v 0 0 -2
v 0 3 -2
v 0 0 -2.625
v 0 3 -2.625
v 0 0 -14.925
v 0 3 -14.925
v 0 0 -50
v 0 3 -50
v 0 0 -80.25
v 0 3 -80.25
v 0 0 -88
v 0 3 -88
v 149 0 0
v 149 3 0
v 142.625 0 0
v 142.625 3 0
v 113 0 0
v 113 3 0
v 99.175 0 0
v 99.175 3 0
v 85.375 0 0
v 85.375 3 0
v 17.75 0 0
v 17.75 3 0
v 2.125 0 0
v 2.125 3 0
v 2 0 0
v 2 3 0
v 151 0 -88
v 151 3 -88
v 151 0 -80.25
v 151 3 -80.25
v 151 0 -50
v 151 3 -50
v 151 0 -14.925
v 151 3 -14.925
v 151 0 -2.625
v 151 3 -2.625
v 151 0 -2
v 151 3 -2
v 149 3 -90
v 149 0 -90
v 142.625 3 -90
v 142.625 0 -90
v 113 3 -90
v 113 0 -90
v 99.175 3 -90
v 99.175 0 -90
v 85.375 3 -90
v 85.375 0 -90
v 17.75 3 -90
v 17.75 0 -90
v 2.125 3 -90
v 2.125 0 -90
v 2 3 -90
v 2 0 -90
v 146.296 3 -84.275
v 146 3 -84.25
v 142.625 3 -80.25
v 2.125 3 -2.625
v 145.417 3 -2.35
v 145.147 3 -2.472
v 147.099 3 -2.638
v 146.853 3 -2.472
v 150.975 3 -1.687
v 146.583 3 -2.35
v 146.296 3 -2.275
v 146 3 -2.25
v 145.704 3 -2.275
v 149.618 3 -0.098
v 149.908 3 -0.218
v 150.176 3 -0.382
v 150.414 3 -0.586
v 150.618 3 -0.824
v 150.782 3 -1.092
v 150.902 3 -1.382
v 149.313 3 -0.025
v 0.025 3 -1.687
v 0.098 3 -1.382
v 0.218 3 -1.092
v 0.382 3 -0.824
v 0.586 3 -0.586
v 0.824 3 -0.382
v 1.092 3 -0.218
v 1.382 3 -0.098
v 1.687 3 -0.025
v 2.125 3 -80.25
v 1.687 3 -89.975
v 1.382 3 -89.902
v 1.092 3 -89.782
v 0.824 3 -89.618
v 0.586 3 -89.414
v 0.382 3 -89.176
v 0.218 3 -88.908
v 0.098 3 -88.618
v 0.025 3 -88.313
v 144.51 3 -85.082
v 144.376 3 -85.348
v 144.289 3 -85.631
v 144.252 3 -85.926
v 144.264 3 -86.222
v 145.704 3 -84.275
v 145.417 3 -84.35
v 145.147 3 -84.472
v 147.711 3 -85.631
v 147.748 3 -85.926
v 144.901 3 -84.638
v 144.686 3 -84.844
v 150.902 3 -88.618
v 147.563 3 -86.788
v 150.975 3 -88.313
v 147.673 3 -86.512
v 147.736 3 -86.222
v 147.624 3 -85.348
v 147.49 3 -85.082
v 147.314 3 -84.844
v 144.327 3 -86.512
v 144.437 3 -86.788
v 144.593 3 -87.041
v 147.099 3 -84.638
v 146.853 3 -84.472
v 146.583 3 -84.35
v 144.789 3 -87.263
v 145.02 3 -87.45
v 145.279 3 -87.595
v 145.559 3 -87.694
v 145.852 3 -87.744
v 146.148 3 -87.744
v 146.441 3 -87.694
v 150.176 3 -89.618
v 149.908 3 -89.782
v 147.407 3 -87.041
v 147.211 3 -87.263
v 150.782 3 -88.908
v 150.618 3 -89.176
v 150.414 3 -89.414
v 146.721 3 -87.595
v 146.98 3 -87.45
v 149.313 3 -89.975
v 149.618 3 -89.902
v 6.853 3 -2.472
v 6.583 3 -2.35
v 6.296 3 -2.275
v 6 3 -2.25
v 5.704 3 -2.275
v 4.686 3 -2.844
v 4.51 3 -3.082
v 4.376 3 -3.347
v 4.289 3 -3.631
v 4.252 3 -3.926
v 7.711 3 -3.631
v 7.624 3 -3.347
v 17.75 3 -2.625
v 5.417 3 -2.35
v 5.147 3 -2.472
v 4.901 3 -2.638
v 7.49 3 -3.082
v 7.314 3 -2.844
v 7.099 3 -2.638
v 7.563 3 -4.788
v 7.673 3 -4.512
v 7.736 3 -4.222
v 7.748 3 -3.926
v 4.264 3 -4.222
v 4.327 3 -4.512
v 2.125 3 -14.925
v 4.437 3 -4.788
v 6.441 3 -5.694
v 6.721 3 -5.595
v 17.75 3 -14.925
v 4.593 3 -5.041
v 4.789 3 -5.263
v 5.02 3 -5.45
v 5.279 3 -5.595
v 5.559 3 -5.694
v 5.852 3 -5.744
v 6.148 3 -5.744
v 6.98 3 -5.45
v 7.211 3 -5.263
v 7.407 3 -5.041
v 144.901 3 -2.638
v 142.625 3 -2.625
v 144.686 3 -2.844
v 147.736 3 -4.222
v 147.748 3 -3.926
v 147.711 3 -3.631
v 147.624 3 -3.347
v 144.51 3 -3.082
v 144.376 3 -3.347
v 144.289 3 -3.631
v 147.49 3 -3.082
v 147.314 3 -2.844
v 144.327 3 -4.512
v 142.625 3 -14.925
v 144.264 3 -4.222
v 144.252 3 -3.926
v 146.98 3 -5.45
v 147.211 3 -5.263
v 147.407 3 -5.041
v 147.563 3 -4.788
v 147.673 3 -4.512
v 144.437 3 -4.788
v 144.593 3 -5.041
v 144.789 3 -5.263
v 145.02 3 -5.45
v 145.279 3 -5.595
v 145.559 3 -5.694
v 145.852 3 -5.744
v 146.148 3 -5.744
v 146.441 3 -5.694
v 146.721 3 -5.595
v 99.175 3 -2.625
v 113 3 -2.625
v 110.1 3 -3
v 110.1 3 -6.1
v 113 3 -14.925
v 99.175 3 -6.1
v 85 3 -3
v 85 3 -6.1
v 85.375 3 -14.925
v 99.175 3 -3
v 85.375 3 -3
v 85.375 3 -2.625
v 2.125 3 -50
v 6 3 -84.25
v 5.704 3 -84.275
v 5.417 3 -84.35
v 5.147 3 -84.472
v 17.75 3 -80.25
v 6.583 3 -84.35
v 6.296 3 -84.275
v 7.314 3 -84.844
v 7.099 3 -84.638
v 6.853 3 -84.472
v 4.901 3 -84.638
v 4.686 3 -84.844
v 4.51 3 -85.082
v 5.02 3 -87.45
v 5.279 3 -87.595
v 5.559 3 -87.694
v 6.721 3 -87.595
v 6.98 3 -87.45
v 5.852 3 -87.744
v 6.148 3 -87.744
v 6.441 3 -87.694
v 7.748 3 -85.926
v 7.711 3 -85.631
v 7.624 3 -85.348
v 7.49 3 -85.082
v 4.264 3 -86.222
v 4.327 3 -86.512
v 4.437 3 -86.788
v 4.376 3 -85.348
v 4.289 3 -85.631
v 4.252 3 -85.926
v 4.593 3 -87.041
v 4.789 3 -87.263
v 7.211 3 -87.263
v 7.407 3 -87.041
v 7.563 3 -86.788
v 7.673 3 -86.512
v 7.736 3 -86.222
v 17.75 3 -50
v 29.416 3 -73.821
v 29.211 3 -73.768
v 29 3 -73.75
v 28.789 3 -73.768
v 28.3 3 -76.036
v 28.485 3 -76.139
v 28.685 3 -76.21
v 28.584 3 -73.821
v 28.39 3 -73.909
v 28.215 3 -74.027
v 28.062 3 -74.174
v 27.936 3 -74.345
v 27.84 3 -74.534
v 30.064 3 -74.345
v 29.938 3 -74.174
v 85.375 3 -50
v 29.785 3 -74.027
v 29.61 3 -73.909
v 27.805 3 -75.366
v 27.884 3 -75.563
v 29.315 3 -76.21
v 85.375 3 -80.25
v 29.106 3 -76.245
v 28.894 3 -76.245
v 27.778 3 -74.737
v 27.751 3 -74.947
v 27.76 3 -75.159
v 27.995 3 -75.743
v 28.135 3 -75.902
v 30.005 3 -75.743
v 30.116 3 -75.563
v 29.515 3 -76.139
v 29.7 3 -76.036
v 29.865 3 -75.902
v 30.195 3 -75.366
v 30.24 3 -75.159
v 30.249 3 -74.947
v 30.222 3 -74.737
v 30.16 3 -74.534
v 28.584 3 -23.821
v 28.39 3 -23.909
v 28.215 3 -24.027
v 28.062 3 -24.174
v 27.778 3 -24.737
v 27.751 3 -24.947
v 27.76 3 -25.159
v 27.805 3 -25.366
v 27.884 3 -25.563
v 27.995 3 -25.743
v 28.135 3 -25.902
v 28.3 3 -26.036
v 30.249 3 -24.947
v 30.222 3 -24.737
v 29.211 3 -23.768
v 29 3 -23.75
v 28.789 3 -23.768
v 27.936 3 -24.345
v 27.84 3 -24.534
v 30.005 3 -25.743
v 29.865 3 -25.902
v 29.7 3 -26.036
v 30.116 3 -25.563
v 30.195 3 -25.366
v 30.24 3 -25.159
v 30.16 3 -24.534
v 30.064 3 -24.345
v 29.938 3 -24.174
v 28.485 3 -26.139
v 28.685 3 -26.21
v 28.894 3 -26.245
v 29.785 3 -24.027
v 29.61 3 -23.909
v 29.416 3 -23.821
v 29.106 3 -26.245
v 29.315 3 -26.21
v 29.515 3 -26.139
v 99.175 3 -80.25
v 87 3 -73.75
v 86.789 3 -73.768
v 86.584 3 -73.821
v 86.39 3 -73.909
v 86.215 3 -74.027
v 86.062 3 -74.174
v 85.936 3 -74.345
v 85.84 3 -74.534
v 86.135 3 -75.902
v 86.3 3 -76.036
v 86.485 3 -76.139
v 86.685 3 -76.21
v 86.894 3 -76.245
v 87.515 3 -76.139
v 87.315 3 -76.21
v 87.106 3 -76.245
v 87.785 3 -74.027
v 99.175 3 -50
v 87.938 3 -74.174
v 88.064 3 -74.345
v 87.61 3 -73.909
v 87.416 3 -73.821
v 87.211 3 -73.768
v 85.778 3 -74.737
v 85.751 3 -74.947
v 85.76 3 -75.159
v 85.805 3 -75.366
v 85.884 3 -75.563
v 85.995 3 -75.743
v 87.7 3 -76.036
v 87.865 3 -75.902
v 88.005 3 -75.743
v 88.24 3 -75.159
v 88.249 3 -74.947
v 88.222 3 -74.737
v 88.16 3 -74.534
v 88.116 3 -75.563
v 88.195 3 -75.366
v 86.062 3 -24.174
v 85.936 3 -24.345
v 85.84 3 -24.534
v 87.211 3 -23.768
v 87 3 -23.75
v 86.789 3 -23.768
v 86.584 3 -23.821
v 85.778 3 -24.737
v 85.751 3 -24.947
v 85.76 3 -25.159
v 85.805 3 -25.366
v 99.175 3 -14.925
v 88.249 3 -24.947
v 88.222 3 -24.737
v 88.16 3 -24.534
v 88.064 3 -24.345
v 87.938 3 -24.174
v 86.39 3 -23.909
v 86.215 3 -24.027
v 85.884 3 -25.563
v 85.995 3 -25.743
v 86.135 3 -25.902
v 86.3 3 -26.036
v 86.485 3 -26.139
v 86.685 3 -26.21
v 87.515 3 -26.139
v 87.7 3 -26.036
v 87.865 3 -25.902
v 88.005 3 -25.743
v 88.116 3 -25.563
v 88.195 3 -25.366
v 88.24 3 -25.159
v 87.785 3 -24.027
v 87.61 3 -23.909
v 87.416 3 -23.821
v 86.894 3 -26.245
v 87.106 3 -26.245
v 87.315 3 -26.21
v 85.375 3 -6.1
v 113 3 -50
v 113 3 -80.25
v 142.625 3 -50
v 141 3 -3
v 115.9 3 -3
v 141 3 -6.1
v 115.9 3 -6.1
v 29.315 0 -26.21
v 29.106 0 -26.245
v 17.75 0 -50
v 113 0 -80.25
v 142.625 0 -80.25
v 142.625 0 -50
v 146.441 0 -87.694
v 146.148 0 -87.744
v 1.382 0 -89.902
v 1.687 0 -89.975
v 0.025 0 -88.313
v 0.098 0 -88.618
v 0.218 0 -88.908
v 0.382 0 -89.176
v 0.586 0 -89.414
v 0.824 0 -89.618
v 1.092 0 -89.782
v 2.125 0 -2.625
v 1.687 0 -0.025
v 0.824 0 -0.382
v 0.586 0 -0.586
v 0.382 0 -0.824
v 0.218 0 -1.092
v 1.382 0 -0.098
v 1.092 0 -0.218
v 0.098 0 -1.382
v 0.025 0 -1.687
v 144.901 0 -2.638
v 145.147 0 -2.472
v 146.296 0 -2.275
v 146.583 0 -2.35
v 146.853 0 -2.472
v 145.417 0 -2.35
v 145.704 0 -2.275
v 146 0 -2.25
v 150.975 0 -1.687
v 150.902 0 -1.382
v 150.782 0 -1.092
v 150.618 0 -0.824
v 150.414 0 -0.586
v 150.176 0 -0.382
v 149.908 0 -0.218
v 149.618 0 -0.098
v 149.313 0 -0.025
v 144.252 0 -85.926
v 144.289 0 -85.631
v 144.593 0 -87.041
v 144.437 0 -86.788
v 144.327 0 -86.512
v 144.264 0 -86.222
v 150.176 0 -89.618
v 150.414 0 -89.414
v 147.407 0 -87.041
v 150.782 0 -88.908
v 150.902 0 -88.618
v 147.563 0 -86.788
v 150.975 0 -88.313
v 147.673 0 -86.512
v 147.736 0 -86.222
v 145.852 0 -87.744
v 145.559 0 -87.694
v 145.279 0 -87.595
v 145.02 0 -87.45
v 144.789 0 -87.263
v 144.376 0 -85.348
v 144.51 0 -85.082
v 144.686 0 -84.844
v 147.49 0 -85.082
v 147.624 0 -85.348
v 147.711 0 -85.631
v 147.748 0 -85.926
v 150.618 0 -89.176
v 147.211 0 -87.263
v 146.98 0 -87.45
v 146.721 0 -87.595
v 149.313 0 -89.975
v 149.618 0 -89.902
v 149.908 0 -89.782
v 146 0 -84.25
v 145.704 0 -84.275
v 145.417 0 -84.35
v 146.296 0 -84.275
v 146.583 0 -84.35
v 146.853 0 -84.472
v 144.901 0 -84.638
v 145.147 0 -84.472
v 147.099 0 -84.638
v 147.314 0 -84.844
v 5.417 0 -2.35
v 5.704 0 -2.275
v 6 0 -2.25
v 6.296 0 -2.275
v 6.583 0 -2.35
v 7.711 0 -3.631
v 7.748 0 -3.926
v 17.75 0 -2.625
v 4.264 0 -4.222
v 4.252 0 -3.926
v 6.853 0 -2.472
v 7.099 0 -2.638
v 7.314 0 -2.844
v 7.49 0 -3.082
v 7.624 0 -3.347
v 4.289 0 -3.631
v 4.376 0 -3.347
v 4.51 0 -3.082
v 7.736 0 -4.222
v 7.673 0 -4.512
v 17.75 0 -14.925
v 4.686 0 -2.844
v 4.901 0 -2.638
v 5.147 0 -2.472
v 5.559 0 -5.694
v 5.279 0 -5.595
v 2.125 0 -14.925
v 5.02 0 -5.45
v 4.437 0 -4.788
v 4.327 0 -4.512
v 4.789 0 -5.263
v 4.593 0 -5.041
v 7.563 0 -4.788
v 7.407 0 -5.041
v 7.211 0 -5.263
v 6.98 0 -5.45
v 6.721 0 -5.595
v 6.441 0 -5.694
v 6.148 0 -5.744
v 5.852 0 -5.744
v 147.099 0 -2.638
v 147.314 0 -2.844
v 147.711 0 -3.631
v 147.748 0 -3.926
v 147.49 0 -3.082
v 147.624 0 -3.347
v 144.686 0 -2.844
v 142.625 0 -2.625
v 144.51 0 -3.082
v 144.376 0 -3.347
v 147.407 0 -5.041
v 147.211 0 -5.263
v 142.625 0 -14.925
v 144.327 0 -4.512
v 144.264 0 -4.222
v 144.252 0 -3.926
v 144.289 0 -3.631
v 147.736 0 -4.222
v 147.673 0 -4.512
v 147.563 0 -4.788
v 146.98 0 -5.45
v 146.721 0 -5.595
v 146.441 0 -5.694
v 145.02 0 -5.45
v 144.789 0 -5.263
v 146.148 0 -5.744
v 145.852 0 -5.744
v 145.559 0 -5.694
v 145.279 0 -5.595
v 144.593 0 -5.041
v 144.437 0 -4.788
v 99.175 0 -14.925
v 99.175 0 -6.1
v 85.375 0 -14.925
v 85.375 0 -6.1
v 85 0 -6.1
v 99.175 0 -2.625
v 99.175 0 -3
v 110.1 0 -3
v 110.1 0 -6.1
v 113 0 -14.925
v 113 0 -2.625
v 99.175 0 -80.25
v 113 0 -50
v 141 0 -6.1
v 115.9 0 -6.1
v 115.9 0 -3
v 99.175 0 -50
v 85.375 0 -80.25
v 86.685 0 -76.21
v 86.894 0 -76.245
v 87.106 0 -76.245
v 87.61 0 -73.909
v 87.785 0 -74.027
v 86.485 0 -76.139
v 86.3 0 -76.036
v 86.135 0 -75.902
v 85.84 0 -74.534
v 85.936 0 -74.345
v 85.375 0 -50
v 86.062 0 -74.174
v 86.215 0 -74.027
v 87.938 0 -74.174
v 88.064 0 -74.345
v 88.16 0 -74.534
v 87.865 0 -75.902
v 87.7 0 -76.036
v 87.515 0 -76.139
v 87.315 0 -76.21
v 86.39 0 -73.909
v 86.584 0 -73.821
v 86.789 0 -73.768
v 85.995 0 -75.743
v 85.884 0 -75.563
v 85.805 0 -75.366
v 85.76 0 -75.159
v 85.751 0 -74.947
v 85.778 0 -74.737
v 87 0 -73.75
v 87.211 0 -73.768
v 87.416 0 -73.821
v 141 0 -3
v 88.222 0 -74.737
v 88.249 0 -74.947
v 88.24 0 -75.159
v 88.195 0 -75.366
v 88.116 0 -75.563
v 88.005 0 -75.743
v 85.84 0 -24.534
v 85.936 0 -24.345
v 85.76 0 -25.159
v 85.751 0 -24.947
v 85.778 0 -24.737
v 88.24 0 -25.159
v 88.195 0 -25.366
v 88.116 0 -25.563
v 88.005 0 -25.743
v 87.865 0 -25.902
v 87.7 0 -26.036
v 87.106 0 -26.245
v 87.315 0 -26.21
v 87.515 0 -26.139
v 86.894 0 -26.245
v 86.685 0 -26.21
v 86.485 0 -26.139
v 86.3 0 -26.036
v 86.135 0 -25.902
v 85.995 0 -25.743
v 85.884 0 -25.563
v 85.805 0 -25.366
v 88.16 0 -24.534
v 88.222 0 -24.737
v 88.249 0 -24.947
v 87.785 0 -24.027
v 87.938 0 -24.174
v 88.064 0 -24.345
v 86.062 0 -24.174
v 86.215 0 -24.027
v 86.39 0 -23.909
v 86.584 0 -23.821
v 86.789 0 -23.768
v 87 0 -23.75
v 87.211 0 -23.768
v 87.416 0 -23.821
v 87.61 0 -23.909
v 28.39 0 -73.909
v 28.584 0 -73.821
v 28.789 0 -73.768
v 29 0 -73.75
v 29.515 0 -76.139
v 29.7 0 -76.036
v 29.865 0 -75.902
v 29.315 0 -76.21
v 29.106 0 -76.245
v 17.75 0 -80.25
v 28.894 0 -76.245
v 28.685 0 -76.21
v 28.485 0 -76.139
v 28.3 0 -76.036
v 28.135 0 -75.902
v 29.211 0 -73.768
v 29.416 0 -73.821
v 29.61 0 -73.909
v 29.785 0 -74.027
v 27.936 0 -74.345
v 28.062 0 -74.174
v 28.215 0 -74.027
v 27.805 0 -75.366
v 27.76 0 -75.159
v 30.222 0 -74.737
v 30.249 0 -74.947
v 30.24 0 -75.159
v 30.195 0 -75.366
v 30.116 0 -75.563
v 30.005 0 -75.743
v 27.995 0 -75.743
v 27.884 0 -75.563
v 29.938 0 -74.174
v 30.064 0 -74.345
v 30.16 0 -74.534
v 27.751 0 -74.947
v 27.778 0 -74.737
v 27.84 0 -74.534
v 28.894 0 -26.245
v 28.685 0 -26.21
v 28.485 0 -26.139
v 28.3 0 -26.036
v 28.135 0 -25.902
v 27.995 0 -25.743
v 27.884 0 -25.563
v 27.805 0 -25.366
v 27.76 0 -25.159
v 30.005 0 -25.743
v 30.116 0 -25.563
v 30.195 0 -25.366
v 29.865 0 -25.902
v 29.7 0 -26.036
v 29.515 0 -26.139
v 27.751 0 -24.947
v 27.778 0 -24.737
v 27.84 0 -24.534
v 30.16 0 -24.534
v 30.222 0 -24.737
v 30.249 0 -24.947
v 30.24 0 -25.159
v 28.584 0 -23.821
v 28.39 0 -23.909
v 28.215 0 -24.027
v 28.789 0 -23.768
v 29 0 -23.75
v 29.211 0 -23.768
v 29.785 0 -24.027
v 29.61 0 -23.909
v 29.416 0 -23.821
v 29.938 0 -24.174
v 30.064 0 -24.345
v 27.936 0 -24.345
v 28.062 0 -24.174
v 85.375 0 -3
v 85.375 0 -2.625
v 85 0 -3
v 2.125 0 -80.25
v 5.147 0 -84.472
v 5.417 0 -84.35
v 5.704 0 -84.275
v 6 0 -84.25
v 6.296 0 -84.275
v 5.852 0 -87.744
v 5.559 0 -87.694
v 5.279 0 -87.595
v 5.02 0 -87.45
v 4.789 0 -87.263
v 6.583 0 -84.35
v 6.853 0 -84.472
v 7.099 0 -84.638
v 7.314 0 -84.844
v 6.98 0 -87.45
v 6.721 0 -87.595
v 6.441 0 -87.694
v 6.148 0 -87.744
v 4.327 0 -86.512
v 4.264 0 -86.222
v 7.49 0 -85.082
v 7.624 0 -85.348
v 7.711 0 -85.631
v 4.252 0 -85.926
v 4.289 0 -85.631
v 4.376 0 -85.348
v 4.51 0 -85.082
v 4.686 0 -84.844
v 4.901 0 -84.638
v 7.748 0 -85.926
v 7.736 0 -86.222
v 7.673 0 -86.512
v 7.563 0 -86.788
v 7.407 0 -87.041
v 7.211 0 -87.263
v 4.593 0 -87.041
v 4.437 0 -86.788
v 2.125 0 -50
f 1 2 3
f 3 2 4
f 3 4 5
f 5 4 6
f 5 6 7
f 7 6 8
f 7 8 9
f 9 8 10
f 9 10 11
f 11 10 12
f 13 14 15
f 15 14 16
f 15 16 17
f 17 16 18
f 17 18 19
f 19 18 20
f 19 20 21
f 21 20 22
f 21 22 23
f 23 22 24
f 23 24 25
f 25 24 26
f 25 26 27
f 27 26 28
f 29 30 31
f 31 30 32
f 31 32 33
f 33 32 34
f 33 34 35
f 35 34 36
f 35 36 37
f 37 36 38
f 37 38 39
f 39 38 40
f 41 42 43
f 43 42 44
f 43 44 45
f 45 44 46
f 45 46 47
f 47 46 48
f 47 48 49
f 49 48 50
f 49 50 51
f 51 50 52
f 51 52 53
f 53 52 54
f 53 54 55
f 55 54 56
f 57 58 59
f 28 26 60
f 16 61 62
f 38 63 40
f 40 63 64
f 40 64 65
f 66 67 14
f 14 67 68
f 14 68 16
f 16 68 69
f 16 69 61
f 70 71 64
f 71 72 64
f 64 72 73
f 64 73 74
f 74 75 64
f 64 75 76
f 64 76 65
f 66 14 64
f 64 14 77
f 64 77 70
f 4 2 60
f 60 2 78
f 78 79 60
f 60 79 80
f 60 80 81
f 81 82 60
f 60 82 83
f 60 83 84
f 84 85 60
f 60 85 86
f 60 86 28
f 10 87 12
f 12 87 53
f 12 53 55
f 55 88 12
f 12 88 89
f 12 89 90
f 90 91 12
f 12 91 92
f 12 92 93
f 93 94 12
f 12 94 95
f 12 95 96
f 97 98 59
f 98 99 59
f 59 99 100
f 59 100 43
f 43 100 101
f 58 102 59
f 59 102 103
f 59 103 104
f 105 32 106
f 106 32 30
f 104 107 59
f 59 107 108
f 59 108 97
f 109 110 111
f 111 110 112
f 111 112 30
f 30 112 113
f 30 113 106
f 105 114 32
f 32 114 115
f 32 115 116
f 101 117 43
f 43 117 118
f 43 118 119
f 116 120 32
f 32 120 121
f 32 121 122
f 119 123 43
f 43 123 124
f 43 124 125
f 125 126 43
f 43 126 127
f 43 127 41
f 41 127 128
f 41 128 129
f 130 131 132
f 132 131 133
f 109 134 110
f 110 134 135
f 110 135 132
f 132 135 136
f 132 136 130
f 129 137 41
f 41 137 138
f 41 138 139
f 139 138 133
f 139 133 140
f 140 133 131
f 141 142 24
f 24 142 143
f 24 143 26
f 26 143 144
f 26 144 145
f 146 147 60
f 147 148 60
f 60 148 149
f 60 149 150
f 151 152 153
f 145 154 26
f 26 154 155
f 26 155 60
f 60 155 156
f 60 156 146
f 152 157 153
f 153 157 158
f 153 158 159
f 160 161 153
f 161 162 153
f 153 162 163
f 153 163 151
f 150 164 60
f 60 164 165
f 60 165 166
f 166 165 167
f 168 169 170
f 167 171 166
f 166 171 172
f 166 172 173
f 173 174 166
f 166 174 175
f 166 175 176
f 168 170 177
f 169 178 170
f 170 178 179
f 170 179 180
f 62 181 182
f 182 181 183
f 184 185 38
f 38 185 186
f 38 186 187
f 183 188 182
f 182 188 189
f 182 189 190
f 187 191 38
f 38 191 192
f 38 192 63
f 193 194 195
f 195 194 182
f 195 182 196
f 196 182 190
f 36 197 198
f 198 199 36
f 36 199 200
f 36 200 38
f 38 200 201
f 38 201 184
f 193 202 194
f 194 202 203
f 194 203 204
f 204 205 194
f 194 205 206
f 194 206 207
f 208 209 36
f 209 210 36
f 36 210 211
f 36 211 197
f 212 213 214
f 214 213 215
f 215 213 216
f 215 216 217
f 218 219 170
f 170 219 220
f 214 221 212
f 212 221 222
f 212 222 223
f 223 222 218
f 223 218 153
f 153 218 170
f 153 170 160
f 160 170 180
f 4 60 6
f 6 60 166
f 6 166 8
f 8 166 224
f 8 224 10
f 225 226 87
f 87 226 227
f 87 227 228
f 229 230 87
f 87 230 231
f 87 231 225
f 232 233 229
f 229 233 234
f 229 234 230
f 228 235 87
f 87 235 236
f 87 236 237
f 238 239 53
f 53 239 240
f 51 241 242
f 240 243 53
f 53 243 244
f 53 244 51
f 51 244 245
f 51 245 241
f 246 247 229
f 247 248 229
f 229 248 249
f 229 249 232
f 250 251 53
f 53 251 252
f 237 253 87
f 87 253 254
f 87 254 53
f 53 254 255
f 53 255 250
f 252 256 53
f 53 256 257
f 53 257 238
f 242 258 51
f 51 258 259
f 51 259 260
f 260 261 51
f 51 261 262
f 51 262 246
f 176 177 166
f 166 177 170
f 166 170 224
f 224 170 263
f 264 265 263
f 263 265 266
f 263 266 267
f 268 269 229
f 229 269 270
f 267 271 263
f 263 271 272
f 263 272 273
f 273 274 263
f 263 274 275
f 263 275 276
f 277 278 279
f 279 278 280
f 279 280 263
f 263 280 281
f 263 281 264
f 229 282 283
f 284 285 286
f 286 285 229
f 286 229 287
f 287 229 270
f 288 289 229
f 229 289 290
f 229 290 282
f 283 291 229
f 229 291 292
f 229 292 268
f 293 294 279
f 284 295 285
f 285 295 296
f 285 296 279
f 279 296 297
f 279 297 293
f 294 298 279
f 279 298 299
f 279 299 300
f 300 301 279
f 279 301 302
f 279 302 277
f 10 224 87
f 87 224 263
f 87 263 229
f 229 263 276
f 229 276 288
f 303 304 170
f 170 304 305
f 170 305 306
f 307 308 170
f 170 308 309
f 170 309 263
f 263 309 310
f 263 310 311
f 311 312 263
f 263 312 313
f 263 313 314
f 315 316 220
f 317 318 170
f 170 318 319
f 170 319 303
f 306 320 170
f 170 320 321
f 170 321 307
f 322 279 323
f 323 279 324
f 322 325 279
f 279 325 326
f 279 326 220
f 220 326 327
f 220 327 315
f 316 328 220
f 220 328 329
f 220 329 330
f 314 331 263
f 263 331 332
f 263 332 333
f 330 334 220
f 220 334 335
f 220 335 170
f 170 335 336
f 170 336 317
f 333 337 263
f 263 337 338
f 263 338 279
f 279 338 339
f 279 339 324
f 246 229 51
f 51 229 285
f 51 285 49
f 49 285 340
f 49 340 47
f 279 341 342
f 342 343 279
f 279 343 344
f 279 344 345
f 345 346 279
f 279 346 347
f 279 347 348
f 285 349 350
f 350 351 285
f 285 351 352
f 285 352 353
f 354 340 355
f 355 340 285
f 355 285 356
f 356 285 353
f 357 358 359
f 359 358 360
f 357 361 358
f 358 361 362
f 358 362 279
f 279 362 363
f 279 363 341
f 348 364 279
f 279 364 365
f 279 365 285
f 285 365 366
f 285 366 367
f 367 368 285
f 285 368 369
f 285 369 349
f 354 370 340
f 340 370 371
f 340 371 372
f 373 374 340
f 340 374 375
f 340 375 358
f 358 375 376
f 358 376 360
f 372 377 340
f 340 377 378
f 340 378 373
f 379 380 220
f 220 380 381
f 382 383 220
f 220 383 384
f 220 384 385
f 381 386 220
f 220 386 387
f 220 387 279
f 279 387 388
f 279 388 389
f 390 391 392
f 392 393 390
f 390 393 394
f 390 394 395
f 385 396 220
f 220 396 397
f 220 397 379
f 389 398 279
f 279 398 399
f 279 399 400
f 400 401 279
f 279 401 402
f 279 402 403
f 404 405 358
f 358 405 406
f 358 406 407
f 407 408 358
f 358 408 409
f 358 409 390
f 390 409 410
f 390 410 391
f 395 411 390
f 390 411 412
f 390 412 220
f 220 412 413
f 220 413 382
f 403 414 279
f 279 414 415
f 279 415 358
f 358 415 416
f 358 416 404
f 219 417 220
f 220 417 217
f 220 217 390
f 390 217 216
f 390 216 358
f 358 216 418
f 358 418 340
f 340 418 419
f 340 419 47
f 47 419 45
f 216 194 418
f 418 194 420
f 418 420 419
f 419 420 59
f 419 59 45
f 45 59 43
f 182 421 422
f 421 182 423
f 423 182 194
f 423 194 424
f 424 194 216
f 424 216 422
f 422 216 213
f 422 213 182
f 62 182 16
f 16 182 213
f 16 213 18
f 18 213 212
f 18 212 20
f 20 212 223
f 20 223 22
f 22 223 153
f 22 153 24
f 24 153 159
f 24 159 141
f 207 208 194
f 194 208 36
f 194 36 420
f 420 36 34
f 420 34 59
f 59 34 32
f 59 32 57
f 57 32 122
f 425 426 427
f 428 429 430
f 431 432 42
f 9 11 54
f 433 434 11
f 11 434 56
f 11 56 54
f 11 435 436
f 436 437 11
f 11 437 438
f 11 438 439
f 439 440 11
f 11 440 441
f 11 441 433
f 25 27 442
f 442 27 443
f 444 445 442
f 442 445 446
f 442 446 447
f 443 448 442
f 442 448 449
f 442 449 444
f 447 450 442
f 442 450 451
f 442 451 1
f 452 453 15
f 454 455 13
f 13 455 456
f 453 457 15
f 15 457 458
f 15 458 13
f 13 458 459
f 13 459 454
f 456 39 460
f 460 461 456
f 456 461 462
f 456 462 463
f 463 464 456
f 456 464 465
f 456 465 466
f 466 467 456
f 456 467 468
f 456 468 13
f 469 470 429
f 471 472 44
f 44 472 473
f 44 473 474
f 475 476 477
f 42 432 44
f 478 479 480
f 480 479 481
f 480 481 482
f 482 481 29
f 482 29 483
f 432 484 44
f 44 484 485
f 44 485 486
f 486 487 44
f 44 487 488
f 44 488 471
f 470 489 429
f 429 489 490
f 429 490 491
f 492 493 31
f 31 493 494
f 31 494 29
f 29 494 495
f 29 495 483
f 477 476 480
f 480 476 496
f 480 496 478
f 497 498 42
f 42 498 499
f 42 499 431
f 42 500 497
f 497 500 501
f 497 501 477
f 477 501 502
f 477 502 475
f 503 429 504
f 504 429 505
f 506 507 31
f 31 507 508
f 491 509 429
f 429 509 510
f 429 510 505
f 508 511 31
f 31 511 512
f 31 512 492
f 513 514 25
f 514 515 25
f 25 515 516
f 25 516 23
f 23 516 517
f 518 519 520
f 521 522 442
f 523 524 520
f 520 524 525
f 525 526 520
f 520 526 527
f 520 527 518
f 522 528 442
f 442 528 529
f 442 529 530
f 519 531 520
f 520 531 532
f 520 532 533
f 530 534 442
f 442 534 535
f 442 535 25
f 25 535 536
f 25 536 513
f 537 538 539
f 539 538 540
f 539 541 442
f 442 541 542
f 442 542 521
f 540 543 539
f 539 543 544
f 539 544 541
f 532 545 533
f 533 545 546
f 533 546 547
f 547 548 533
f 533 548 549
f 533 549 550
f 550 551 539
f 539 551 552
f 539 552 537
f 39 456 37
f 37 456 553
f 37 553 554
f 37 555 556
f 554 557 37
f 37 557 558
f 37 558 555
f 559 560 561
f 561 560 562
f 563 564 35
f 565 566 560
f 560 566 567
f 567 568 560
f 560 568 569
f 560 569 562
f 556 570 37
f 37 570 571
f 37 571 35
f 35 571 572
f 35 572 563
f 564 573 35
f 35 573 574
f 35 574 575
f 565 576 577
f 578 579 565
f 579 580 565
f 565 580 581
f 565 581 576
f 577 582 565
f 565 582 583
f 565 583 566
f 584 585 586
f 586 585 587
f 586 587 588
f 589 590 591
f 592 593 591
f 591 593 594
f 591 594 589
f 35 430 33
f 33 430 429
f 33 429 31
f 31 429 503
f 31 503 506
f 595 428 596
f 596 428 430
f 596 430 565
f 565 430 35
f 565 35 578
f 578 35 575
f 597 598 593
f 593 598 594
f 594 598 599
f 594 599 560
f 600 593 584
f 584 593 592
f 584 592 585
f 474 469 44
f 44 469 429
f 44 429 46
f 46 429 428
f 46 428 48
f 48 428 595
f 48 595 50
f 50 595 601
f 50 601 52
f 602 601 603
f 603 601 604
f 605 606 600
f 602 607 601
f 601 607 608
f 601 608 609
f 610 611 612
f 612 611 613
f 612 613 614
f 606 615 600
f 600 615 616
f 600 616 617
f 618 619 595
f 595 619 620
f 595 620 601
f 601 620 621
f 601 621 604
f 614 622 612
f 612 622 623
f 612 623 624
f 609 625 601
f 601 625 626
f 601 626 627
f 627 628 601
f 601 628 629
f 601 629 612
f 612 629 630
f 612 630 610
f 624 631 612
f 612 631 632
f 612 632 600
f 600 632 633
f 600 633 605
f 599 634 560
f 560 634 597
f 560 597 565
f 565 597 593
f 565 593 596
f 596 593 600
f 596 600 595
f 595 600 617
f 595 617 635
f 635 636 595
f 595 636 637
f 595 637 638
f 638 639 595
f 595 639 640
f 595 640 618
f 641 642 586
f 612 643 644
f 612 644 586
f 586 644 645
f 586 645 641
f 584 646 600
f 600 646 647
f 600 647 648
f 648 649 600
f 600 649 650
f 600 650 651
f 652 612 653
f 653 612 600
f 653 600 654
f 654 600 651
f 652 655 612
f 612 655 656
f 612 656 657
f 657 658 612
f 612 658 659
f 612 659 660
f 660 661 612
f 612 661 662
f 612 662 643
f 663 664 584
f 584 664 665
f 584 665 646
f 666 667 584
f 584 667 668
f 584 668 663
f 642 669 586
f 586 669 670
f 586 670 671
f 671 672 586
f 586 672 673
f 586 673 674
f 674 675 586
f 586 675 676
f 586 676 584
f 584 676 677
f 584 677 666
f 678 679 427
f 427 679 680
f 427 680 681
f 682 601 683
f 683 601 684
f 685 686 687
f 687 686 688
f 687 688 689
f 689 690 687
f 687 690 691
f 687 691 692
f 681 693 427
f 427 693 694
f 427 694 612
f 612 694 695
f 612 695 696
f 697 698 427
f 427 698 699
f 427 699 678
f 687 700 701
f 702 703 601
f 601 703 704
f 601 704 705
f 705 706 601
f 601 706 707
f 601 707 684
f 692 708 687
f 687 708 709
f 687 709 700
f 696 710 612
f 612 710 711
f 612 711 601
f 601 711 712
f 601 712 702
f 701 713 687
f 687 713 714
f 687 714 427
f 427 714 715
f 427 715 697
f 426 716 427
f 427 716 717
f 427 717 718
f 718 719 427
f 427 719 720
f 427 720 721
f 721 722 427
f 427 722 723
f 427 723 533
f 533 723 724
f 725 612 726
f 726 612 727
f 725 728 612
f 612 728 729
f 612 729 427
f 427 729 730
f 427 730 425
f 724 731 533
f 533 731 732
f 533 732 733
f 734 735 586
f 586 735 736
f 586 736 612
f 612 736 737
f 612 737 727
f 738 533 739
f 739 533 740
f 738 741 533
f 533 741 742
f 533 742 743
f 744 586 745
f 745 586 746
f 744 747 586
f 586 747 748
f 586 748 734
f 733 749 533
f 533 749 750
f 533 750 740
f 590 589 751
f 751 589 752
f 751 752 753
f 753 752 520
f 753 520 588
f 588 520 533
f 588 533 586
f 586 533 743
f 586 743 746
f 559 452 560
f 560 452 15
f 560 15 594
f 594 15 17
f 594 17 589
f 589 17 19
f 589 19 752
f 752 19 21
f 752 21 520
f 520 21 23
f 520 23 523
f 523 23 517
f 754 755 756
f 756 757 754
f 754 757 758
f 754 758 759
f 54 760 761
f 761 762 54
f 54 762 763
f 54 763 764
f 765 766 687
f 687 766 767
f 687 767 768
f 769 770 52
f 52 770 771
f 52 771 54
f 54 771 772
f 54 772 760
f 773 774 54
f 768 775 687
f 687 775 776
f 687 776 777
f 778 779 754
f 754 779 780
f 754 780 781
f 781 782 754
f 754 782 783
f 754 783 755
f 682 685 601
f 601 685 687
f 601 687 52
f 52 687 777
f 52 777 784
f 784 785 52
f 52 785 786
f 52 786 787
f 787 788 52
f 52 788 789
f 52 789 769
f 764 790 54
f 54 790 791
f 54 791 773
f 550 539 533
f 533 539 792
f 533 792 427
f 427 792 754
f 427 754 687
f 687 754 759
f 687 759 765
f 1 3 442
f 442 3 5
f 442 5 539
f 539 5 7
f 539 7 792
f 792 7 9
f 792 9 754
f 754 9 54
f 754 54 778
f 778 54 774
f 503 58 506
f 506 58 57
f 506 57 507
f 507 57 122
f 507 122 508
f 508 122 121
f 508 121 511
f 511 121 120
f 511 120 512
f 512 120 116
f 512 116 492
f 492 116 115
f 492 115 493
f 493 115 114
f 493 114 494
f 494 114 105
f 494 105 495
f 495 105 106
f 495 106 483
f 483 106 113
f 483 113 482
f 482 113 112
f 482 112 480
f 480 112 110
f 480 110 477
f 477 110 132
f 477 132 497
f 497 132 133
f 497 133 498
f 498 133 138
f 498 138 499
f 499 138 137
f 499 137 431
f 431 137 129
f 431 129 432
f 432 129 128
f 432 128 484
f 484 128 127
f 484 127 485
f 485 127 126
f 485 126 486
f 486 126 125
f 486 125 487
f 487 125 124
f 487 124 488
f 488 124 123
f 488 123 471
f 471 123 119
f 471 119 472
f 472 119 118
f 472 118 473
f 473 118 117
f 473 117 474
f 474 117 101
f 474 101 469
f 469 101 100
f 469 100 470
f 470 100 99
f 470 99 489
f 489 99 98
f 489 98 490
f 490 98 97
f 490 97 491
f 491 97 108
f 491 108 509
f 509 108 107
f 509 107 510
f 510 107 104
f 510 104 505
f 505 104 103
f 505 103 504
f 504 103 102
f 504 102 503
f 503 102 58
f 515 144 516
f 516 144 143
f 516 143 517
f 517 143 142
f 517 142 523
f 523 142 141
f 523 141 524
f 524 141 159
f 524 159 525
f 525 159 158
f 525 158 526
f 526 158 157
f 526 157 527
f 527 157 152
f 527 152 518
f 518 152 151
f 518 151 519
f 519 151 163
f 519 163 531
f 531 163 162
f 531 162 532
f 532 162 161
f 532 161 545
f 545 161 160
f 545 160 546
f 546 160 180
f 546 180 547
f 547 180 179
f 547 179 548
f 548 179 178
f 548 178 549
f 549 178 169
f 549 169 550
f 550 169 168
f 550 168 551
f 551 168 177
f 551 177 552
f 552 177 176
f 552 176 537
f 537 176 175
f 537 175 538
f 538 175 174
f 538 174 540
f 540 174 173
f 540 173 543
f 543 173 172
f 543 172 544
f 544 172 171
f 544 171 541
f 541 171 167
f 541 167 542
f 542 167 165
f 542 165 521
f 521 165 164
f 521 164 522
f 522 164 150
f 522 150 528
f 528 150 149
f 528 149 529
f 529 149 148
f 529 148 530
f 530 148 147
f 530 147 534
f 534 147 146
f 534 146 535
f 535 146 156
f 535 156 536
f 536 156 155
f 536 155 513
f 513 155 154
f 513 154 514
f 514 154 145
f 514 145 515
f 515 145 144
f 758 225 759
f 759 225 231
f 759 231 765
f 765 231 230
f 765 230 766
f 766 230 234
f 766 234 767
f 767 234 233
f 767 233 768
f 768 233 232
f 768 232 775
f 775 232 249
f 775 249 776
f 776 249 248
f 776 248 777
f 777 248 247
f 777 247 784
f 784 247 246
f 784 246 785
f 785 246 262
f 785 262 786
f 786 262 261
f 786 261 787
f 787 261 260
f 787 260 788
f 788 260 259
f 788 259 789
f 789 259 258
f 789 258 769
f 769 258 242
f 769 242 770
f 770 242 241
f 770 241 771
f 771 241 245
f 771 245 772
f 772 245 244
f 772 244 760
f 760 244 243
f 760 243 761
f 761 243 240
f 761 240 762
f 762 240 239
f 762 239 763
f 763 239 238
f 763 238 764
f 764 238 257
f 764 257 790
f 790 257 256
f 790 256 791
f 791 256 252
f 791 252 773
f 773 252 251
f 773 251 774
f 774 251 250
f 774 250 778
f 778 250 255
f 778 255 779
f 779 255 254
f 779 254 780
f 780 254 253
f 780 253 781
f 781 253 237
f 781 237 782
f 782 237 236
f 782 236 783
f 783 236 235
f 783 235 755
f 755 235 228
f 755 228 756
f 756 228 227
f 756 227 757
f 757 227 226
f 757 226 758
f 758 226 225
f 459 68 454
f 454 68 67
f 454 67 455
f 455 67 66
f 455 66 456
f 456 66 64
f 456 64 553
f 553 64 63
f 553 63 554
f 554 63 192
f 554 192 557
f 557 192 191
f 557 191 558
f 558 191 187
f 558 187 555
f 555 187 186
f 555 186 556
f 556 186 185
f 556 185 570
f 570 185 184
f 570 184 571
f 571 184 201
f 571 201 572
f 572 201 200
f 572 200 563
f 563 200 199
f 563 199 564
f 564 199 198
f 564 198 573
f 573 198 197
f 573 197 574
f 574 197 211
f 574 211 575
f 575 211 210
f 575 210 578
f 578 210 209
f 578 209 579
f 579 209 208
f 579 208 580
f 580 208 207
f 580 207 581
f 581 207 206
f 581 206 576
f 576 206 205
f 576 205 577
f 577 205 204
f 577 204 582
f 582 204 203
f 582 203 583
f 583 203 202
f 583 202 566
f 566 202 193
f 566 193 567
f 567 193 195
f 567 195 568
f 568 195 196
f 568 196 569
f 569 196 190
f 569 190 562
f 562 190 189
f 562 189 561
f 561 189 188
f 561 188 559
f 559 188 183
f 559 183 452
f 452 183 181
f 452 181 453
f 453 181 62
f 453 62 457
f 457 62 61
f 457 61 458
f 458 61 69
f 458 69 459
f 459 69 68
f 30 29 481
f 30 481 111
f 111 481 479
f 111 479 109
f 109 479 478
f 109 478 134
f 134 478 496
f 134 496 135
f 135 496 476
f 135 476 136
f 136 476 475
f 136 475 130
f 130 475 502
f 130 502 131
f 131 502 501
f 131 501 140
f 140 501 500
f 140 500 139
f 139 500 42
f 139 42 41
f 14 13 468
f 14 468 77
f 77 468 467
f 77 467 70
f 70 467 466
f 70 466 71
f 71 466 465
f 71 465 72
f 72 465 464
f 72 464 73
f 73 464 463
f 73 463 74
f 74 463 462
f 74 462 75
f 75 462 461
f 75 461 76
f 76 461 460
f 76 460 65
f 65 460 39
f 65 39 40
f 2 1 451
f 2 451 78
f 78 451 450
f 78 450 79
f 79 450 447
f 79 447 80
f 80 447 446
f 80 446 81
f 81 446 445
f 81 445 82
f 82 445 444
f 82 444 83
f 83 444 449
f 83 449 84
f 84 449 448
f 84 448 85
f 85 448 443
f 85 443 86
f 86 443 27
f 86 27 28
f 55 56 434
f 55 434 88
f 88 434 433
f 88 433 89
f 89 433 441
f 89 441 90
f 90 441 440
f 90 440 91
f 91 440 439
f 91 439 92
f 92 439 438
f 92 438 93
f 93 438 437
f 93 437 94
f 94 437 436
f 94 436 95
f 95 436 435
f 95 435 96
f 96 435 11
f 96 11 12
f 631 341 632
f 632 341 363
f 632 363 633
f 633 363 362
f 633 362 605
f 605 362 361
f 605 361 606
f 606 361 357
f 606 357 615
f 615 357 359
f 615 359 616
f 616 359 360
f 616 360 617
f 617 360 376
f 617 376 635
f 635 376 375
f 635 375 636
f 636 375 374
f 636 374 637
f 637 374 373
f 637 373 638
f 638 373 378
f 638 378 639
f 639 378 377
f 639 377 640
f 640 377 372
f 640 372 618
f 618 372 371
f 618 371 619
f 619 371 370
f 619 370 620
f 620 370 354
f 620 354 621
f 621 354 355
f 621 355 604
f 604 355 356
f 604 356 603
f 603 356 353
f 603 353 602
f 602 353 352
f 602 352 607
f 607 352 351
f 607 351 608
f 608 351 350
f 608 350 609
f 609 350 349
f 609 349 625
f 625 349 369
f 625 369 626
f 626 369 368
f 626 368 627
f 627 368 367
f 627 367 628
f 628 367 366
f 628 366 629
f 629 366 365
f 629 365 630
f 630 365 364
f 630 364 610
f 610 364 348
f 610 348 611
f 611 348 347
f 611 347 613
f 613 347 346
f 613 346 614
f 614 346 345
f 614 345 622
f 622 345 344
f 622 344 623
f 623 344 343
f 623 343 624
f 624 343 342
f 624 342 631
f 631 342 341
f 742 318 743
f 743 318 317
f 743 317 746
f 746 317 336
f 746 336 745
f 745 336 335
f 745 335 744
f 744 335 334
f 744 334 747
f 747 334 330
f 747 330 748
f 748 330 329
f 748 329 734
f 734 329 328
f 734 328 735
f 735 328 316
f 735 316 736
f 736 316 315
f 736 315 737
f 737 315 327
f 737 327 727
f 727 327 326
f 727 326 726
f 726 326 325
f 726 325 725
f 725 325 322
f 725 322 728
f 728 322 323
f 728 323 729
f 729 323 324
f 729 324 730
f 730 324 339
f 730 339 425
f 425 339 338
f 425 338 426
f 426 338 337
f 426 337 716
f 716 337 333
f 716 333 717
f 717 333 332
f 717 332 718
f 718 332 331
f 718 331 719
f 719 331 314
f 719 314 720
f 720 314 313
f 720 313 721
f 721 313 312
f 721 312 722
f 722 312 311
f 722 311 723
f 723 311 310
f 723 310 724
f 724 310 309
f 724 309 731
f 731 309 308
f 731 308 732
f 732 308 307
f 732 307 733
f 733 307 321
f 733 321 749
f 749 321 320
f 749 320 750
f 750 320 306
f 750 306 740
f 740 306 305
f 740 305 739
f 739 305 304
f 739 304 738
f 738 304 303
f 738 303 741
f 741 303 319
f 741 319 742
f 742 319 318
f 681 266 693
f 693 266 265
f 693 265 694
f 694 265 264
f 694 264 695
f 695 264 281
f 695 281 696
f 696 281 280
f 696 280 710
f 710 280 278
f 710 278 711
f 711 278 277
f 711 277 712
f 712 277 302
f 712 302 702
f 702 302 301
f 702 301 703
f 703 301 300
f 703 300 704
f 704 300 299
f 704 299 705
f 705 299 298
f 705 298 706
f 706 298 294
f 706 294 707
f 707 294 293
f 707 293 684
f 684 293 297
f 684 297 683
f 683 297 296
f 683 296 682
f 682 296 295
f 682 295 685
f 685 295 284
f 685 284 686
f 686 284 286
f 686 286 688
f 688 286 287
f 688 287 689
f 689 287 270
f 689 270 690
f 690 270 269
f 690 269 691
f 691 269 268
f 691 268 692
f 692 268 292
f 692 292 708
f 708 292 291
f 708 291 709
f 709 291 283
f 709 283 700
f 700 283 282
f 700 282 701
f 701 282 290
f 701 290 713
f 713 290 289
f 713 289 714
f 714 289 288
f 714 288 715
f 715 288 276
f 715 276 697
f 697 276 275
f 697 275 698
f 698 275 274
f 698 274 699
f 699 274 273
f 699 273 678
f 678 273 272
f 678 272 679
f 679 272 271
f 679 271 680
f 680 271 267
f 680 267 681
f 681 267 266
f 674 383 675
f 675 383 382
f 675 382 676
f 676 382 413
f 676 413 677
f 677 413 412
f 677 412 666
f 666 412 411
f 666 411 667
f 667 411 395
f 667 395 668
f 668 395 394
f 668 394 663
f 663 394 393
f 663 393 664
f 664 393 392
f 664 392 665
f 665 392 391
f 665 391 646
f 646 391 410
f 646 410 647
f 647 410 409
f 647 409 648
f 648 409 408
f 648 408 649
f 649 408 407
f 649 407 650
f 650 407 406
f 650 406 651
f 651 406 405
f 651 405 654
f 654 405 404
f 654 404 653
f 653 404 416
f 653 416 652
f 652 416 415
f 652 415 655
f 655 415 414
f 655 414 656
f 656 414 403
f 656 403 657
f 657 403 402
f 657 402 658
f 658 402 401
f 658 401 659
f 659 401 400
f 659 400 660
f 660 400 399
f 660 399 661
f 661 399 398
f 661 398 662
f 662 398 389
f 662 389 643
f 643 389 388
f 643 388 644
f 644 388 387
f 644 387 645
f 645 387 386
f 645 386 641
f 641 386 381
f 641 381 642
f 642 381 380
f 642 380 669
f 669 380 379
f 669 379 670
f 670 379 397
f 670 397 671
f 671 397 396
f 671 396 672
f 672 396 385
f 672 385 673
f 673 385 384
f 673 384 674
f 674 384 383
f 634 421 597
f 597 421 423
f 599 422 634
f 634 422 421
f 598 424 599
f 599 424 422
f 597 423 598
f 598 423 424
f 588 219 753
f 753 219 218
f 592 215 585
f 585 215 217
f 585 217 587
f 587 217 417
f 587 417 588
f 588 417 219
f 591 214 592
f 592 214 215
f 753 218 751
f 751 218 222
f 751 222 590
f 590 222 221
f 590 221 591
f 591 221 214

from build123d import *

# Parameters (mm, degrees)
SKETCH1_W               = 151
SKETCH1_H               = 90
BOSS_EXTRUDE1_DEPTH     = 3
SKETCH2_R               = 1.75
CUT_EXTRUDE1_DEPTH      = 176.812400018
FILLET1_R               = 2
SKETCH3_R               = 1.25
CUT_EXTRUDE2_DEPTH      = 176.812400018
CUT_EXTRUDE3_DEPTH      = 176.812400018
CUT_EXTRUDE3_DEPTH_BACK = 176.812400018
SKETCH4_W               = 25.1
SKETCH4_H               = 3.1


with BuildPart() as part:
    # Sketch1 → Boss-Extrude1 (new body)
    with BuildSketch(Plane(origin=(0, 0, 0), x_dir=(1, 0, 0), z_dir=(0, 1, 0))):
        with Locations((75.5, 45)):
            Rectangle(SKETCH1_W, SKETCH1_H)
    extrude(amount=BOSS_EXTRUDE1_DEPTH)

    # Sketch2 → Cut-Extrude1 (cut, through all)
    with BuildSketch(Plane(origin=(0, 3, 0), x_dir=(1, 0, 0), z_dir=(0, 1, 0))):
        with Locations(Location((146, 86, 0), (0, 0, 270))):
            Circle(SKETCH2_R)
        with Locations(Location((146, 4, 0), (0, 0, 270))):
            Circle(SKETCH2_R)
        with Locations(Location((6, 86, 0), (0, 0, 270))):
            Circle(SKETCH2_R)
        with Locations(Location((6, 4, 0), (0, 0, 270))):
            Circle(SKETCH2_R)
    extrude(amount=-CUT_EXTRUDE1_DEPTH, mode=Mode.SUBTRACT)

    # Fillet1
    fillet1_edges = [part.edges().sort_by_distance(p)[0] for p in [
        (0, 1.5, -90),
        (151, 1.5, -90),
        (151, 1.5, 0),
        (0, 1.5, 0),
    ]]
    fillet(fillet1_edges, radius=FILLET1_R)

    # Sketch3 → Cut-Extrude2 (cut, through all)
    with BuildSketch(Plane(origin=(0, 3, 0), x_dir=(1, 0, 0), z_dir=(0, 1, 0))):
        with Locations(Location((87, 75, 0), (0, 0, 270))):
            Circle(SKETCH3_R)
        with Locations(Location((29, 75, 0), (0, 0, 270))):
            Circle(SKETCH3_R)
        with Locations(Location((87, 25, 0), (0, 0, 270))):
            Circle(SKETCH3_R)
        with Locations(Location((29, 25, 0), (0, 0, 270))):
            Circle(SKETCH3_R)
    extrude(amount=-CUT_EXTRUDE2_DEPTH, mode=Mode.SUBTRACT)

    # Sketch4 → Cut-Extrude3 (cut, two sides: drawn at the far end of the back side and taken through both)
    with BuildSketch(Plane(origin=(0, 3, 0), x_dir=(1, 0, 0), z_dir=(0, 1, 0)).offset(-CUT_EXTRUDE3_DEPTH_BACK)):
        with Locations((97.55, 4.55)):
            Rectangle(SKETCH4_W, SKETCH4_H)
        with Locations((128.45, 4.55)):
            Rectangle(SKETCH4_W, SKETCH4_H)
    extrude(amount=CUT_EXTRUDE3_DEPTH + CUT_EXTRUDE3_DEPTH_BACK, mode=Mode.SUBTRACT)


solid = part.part
